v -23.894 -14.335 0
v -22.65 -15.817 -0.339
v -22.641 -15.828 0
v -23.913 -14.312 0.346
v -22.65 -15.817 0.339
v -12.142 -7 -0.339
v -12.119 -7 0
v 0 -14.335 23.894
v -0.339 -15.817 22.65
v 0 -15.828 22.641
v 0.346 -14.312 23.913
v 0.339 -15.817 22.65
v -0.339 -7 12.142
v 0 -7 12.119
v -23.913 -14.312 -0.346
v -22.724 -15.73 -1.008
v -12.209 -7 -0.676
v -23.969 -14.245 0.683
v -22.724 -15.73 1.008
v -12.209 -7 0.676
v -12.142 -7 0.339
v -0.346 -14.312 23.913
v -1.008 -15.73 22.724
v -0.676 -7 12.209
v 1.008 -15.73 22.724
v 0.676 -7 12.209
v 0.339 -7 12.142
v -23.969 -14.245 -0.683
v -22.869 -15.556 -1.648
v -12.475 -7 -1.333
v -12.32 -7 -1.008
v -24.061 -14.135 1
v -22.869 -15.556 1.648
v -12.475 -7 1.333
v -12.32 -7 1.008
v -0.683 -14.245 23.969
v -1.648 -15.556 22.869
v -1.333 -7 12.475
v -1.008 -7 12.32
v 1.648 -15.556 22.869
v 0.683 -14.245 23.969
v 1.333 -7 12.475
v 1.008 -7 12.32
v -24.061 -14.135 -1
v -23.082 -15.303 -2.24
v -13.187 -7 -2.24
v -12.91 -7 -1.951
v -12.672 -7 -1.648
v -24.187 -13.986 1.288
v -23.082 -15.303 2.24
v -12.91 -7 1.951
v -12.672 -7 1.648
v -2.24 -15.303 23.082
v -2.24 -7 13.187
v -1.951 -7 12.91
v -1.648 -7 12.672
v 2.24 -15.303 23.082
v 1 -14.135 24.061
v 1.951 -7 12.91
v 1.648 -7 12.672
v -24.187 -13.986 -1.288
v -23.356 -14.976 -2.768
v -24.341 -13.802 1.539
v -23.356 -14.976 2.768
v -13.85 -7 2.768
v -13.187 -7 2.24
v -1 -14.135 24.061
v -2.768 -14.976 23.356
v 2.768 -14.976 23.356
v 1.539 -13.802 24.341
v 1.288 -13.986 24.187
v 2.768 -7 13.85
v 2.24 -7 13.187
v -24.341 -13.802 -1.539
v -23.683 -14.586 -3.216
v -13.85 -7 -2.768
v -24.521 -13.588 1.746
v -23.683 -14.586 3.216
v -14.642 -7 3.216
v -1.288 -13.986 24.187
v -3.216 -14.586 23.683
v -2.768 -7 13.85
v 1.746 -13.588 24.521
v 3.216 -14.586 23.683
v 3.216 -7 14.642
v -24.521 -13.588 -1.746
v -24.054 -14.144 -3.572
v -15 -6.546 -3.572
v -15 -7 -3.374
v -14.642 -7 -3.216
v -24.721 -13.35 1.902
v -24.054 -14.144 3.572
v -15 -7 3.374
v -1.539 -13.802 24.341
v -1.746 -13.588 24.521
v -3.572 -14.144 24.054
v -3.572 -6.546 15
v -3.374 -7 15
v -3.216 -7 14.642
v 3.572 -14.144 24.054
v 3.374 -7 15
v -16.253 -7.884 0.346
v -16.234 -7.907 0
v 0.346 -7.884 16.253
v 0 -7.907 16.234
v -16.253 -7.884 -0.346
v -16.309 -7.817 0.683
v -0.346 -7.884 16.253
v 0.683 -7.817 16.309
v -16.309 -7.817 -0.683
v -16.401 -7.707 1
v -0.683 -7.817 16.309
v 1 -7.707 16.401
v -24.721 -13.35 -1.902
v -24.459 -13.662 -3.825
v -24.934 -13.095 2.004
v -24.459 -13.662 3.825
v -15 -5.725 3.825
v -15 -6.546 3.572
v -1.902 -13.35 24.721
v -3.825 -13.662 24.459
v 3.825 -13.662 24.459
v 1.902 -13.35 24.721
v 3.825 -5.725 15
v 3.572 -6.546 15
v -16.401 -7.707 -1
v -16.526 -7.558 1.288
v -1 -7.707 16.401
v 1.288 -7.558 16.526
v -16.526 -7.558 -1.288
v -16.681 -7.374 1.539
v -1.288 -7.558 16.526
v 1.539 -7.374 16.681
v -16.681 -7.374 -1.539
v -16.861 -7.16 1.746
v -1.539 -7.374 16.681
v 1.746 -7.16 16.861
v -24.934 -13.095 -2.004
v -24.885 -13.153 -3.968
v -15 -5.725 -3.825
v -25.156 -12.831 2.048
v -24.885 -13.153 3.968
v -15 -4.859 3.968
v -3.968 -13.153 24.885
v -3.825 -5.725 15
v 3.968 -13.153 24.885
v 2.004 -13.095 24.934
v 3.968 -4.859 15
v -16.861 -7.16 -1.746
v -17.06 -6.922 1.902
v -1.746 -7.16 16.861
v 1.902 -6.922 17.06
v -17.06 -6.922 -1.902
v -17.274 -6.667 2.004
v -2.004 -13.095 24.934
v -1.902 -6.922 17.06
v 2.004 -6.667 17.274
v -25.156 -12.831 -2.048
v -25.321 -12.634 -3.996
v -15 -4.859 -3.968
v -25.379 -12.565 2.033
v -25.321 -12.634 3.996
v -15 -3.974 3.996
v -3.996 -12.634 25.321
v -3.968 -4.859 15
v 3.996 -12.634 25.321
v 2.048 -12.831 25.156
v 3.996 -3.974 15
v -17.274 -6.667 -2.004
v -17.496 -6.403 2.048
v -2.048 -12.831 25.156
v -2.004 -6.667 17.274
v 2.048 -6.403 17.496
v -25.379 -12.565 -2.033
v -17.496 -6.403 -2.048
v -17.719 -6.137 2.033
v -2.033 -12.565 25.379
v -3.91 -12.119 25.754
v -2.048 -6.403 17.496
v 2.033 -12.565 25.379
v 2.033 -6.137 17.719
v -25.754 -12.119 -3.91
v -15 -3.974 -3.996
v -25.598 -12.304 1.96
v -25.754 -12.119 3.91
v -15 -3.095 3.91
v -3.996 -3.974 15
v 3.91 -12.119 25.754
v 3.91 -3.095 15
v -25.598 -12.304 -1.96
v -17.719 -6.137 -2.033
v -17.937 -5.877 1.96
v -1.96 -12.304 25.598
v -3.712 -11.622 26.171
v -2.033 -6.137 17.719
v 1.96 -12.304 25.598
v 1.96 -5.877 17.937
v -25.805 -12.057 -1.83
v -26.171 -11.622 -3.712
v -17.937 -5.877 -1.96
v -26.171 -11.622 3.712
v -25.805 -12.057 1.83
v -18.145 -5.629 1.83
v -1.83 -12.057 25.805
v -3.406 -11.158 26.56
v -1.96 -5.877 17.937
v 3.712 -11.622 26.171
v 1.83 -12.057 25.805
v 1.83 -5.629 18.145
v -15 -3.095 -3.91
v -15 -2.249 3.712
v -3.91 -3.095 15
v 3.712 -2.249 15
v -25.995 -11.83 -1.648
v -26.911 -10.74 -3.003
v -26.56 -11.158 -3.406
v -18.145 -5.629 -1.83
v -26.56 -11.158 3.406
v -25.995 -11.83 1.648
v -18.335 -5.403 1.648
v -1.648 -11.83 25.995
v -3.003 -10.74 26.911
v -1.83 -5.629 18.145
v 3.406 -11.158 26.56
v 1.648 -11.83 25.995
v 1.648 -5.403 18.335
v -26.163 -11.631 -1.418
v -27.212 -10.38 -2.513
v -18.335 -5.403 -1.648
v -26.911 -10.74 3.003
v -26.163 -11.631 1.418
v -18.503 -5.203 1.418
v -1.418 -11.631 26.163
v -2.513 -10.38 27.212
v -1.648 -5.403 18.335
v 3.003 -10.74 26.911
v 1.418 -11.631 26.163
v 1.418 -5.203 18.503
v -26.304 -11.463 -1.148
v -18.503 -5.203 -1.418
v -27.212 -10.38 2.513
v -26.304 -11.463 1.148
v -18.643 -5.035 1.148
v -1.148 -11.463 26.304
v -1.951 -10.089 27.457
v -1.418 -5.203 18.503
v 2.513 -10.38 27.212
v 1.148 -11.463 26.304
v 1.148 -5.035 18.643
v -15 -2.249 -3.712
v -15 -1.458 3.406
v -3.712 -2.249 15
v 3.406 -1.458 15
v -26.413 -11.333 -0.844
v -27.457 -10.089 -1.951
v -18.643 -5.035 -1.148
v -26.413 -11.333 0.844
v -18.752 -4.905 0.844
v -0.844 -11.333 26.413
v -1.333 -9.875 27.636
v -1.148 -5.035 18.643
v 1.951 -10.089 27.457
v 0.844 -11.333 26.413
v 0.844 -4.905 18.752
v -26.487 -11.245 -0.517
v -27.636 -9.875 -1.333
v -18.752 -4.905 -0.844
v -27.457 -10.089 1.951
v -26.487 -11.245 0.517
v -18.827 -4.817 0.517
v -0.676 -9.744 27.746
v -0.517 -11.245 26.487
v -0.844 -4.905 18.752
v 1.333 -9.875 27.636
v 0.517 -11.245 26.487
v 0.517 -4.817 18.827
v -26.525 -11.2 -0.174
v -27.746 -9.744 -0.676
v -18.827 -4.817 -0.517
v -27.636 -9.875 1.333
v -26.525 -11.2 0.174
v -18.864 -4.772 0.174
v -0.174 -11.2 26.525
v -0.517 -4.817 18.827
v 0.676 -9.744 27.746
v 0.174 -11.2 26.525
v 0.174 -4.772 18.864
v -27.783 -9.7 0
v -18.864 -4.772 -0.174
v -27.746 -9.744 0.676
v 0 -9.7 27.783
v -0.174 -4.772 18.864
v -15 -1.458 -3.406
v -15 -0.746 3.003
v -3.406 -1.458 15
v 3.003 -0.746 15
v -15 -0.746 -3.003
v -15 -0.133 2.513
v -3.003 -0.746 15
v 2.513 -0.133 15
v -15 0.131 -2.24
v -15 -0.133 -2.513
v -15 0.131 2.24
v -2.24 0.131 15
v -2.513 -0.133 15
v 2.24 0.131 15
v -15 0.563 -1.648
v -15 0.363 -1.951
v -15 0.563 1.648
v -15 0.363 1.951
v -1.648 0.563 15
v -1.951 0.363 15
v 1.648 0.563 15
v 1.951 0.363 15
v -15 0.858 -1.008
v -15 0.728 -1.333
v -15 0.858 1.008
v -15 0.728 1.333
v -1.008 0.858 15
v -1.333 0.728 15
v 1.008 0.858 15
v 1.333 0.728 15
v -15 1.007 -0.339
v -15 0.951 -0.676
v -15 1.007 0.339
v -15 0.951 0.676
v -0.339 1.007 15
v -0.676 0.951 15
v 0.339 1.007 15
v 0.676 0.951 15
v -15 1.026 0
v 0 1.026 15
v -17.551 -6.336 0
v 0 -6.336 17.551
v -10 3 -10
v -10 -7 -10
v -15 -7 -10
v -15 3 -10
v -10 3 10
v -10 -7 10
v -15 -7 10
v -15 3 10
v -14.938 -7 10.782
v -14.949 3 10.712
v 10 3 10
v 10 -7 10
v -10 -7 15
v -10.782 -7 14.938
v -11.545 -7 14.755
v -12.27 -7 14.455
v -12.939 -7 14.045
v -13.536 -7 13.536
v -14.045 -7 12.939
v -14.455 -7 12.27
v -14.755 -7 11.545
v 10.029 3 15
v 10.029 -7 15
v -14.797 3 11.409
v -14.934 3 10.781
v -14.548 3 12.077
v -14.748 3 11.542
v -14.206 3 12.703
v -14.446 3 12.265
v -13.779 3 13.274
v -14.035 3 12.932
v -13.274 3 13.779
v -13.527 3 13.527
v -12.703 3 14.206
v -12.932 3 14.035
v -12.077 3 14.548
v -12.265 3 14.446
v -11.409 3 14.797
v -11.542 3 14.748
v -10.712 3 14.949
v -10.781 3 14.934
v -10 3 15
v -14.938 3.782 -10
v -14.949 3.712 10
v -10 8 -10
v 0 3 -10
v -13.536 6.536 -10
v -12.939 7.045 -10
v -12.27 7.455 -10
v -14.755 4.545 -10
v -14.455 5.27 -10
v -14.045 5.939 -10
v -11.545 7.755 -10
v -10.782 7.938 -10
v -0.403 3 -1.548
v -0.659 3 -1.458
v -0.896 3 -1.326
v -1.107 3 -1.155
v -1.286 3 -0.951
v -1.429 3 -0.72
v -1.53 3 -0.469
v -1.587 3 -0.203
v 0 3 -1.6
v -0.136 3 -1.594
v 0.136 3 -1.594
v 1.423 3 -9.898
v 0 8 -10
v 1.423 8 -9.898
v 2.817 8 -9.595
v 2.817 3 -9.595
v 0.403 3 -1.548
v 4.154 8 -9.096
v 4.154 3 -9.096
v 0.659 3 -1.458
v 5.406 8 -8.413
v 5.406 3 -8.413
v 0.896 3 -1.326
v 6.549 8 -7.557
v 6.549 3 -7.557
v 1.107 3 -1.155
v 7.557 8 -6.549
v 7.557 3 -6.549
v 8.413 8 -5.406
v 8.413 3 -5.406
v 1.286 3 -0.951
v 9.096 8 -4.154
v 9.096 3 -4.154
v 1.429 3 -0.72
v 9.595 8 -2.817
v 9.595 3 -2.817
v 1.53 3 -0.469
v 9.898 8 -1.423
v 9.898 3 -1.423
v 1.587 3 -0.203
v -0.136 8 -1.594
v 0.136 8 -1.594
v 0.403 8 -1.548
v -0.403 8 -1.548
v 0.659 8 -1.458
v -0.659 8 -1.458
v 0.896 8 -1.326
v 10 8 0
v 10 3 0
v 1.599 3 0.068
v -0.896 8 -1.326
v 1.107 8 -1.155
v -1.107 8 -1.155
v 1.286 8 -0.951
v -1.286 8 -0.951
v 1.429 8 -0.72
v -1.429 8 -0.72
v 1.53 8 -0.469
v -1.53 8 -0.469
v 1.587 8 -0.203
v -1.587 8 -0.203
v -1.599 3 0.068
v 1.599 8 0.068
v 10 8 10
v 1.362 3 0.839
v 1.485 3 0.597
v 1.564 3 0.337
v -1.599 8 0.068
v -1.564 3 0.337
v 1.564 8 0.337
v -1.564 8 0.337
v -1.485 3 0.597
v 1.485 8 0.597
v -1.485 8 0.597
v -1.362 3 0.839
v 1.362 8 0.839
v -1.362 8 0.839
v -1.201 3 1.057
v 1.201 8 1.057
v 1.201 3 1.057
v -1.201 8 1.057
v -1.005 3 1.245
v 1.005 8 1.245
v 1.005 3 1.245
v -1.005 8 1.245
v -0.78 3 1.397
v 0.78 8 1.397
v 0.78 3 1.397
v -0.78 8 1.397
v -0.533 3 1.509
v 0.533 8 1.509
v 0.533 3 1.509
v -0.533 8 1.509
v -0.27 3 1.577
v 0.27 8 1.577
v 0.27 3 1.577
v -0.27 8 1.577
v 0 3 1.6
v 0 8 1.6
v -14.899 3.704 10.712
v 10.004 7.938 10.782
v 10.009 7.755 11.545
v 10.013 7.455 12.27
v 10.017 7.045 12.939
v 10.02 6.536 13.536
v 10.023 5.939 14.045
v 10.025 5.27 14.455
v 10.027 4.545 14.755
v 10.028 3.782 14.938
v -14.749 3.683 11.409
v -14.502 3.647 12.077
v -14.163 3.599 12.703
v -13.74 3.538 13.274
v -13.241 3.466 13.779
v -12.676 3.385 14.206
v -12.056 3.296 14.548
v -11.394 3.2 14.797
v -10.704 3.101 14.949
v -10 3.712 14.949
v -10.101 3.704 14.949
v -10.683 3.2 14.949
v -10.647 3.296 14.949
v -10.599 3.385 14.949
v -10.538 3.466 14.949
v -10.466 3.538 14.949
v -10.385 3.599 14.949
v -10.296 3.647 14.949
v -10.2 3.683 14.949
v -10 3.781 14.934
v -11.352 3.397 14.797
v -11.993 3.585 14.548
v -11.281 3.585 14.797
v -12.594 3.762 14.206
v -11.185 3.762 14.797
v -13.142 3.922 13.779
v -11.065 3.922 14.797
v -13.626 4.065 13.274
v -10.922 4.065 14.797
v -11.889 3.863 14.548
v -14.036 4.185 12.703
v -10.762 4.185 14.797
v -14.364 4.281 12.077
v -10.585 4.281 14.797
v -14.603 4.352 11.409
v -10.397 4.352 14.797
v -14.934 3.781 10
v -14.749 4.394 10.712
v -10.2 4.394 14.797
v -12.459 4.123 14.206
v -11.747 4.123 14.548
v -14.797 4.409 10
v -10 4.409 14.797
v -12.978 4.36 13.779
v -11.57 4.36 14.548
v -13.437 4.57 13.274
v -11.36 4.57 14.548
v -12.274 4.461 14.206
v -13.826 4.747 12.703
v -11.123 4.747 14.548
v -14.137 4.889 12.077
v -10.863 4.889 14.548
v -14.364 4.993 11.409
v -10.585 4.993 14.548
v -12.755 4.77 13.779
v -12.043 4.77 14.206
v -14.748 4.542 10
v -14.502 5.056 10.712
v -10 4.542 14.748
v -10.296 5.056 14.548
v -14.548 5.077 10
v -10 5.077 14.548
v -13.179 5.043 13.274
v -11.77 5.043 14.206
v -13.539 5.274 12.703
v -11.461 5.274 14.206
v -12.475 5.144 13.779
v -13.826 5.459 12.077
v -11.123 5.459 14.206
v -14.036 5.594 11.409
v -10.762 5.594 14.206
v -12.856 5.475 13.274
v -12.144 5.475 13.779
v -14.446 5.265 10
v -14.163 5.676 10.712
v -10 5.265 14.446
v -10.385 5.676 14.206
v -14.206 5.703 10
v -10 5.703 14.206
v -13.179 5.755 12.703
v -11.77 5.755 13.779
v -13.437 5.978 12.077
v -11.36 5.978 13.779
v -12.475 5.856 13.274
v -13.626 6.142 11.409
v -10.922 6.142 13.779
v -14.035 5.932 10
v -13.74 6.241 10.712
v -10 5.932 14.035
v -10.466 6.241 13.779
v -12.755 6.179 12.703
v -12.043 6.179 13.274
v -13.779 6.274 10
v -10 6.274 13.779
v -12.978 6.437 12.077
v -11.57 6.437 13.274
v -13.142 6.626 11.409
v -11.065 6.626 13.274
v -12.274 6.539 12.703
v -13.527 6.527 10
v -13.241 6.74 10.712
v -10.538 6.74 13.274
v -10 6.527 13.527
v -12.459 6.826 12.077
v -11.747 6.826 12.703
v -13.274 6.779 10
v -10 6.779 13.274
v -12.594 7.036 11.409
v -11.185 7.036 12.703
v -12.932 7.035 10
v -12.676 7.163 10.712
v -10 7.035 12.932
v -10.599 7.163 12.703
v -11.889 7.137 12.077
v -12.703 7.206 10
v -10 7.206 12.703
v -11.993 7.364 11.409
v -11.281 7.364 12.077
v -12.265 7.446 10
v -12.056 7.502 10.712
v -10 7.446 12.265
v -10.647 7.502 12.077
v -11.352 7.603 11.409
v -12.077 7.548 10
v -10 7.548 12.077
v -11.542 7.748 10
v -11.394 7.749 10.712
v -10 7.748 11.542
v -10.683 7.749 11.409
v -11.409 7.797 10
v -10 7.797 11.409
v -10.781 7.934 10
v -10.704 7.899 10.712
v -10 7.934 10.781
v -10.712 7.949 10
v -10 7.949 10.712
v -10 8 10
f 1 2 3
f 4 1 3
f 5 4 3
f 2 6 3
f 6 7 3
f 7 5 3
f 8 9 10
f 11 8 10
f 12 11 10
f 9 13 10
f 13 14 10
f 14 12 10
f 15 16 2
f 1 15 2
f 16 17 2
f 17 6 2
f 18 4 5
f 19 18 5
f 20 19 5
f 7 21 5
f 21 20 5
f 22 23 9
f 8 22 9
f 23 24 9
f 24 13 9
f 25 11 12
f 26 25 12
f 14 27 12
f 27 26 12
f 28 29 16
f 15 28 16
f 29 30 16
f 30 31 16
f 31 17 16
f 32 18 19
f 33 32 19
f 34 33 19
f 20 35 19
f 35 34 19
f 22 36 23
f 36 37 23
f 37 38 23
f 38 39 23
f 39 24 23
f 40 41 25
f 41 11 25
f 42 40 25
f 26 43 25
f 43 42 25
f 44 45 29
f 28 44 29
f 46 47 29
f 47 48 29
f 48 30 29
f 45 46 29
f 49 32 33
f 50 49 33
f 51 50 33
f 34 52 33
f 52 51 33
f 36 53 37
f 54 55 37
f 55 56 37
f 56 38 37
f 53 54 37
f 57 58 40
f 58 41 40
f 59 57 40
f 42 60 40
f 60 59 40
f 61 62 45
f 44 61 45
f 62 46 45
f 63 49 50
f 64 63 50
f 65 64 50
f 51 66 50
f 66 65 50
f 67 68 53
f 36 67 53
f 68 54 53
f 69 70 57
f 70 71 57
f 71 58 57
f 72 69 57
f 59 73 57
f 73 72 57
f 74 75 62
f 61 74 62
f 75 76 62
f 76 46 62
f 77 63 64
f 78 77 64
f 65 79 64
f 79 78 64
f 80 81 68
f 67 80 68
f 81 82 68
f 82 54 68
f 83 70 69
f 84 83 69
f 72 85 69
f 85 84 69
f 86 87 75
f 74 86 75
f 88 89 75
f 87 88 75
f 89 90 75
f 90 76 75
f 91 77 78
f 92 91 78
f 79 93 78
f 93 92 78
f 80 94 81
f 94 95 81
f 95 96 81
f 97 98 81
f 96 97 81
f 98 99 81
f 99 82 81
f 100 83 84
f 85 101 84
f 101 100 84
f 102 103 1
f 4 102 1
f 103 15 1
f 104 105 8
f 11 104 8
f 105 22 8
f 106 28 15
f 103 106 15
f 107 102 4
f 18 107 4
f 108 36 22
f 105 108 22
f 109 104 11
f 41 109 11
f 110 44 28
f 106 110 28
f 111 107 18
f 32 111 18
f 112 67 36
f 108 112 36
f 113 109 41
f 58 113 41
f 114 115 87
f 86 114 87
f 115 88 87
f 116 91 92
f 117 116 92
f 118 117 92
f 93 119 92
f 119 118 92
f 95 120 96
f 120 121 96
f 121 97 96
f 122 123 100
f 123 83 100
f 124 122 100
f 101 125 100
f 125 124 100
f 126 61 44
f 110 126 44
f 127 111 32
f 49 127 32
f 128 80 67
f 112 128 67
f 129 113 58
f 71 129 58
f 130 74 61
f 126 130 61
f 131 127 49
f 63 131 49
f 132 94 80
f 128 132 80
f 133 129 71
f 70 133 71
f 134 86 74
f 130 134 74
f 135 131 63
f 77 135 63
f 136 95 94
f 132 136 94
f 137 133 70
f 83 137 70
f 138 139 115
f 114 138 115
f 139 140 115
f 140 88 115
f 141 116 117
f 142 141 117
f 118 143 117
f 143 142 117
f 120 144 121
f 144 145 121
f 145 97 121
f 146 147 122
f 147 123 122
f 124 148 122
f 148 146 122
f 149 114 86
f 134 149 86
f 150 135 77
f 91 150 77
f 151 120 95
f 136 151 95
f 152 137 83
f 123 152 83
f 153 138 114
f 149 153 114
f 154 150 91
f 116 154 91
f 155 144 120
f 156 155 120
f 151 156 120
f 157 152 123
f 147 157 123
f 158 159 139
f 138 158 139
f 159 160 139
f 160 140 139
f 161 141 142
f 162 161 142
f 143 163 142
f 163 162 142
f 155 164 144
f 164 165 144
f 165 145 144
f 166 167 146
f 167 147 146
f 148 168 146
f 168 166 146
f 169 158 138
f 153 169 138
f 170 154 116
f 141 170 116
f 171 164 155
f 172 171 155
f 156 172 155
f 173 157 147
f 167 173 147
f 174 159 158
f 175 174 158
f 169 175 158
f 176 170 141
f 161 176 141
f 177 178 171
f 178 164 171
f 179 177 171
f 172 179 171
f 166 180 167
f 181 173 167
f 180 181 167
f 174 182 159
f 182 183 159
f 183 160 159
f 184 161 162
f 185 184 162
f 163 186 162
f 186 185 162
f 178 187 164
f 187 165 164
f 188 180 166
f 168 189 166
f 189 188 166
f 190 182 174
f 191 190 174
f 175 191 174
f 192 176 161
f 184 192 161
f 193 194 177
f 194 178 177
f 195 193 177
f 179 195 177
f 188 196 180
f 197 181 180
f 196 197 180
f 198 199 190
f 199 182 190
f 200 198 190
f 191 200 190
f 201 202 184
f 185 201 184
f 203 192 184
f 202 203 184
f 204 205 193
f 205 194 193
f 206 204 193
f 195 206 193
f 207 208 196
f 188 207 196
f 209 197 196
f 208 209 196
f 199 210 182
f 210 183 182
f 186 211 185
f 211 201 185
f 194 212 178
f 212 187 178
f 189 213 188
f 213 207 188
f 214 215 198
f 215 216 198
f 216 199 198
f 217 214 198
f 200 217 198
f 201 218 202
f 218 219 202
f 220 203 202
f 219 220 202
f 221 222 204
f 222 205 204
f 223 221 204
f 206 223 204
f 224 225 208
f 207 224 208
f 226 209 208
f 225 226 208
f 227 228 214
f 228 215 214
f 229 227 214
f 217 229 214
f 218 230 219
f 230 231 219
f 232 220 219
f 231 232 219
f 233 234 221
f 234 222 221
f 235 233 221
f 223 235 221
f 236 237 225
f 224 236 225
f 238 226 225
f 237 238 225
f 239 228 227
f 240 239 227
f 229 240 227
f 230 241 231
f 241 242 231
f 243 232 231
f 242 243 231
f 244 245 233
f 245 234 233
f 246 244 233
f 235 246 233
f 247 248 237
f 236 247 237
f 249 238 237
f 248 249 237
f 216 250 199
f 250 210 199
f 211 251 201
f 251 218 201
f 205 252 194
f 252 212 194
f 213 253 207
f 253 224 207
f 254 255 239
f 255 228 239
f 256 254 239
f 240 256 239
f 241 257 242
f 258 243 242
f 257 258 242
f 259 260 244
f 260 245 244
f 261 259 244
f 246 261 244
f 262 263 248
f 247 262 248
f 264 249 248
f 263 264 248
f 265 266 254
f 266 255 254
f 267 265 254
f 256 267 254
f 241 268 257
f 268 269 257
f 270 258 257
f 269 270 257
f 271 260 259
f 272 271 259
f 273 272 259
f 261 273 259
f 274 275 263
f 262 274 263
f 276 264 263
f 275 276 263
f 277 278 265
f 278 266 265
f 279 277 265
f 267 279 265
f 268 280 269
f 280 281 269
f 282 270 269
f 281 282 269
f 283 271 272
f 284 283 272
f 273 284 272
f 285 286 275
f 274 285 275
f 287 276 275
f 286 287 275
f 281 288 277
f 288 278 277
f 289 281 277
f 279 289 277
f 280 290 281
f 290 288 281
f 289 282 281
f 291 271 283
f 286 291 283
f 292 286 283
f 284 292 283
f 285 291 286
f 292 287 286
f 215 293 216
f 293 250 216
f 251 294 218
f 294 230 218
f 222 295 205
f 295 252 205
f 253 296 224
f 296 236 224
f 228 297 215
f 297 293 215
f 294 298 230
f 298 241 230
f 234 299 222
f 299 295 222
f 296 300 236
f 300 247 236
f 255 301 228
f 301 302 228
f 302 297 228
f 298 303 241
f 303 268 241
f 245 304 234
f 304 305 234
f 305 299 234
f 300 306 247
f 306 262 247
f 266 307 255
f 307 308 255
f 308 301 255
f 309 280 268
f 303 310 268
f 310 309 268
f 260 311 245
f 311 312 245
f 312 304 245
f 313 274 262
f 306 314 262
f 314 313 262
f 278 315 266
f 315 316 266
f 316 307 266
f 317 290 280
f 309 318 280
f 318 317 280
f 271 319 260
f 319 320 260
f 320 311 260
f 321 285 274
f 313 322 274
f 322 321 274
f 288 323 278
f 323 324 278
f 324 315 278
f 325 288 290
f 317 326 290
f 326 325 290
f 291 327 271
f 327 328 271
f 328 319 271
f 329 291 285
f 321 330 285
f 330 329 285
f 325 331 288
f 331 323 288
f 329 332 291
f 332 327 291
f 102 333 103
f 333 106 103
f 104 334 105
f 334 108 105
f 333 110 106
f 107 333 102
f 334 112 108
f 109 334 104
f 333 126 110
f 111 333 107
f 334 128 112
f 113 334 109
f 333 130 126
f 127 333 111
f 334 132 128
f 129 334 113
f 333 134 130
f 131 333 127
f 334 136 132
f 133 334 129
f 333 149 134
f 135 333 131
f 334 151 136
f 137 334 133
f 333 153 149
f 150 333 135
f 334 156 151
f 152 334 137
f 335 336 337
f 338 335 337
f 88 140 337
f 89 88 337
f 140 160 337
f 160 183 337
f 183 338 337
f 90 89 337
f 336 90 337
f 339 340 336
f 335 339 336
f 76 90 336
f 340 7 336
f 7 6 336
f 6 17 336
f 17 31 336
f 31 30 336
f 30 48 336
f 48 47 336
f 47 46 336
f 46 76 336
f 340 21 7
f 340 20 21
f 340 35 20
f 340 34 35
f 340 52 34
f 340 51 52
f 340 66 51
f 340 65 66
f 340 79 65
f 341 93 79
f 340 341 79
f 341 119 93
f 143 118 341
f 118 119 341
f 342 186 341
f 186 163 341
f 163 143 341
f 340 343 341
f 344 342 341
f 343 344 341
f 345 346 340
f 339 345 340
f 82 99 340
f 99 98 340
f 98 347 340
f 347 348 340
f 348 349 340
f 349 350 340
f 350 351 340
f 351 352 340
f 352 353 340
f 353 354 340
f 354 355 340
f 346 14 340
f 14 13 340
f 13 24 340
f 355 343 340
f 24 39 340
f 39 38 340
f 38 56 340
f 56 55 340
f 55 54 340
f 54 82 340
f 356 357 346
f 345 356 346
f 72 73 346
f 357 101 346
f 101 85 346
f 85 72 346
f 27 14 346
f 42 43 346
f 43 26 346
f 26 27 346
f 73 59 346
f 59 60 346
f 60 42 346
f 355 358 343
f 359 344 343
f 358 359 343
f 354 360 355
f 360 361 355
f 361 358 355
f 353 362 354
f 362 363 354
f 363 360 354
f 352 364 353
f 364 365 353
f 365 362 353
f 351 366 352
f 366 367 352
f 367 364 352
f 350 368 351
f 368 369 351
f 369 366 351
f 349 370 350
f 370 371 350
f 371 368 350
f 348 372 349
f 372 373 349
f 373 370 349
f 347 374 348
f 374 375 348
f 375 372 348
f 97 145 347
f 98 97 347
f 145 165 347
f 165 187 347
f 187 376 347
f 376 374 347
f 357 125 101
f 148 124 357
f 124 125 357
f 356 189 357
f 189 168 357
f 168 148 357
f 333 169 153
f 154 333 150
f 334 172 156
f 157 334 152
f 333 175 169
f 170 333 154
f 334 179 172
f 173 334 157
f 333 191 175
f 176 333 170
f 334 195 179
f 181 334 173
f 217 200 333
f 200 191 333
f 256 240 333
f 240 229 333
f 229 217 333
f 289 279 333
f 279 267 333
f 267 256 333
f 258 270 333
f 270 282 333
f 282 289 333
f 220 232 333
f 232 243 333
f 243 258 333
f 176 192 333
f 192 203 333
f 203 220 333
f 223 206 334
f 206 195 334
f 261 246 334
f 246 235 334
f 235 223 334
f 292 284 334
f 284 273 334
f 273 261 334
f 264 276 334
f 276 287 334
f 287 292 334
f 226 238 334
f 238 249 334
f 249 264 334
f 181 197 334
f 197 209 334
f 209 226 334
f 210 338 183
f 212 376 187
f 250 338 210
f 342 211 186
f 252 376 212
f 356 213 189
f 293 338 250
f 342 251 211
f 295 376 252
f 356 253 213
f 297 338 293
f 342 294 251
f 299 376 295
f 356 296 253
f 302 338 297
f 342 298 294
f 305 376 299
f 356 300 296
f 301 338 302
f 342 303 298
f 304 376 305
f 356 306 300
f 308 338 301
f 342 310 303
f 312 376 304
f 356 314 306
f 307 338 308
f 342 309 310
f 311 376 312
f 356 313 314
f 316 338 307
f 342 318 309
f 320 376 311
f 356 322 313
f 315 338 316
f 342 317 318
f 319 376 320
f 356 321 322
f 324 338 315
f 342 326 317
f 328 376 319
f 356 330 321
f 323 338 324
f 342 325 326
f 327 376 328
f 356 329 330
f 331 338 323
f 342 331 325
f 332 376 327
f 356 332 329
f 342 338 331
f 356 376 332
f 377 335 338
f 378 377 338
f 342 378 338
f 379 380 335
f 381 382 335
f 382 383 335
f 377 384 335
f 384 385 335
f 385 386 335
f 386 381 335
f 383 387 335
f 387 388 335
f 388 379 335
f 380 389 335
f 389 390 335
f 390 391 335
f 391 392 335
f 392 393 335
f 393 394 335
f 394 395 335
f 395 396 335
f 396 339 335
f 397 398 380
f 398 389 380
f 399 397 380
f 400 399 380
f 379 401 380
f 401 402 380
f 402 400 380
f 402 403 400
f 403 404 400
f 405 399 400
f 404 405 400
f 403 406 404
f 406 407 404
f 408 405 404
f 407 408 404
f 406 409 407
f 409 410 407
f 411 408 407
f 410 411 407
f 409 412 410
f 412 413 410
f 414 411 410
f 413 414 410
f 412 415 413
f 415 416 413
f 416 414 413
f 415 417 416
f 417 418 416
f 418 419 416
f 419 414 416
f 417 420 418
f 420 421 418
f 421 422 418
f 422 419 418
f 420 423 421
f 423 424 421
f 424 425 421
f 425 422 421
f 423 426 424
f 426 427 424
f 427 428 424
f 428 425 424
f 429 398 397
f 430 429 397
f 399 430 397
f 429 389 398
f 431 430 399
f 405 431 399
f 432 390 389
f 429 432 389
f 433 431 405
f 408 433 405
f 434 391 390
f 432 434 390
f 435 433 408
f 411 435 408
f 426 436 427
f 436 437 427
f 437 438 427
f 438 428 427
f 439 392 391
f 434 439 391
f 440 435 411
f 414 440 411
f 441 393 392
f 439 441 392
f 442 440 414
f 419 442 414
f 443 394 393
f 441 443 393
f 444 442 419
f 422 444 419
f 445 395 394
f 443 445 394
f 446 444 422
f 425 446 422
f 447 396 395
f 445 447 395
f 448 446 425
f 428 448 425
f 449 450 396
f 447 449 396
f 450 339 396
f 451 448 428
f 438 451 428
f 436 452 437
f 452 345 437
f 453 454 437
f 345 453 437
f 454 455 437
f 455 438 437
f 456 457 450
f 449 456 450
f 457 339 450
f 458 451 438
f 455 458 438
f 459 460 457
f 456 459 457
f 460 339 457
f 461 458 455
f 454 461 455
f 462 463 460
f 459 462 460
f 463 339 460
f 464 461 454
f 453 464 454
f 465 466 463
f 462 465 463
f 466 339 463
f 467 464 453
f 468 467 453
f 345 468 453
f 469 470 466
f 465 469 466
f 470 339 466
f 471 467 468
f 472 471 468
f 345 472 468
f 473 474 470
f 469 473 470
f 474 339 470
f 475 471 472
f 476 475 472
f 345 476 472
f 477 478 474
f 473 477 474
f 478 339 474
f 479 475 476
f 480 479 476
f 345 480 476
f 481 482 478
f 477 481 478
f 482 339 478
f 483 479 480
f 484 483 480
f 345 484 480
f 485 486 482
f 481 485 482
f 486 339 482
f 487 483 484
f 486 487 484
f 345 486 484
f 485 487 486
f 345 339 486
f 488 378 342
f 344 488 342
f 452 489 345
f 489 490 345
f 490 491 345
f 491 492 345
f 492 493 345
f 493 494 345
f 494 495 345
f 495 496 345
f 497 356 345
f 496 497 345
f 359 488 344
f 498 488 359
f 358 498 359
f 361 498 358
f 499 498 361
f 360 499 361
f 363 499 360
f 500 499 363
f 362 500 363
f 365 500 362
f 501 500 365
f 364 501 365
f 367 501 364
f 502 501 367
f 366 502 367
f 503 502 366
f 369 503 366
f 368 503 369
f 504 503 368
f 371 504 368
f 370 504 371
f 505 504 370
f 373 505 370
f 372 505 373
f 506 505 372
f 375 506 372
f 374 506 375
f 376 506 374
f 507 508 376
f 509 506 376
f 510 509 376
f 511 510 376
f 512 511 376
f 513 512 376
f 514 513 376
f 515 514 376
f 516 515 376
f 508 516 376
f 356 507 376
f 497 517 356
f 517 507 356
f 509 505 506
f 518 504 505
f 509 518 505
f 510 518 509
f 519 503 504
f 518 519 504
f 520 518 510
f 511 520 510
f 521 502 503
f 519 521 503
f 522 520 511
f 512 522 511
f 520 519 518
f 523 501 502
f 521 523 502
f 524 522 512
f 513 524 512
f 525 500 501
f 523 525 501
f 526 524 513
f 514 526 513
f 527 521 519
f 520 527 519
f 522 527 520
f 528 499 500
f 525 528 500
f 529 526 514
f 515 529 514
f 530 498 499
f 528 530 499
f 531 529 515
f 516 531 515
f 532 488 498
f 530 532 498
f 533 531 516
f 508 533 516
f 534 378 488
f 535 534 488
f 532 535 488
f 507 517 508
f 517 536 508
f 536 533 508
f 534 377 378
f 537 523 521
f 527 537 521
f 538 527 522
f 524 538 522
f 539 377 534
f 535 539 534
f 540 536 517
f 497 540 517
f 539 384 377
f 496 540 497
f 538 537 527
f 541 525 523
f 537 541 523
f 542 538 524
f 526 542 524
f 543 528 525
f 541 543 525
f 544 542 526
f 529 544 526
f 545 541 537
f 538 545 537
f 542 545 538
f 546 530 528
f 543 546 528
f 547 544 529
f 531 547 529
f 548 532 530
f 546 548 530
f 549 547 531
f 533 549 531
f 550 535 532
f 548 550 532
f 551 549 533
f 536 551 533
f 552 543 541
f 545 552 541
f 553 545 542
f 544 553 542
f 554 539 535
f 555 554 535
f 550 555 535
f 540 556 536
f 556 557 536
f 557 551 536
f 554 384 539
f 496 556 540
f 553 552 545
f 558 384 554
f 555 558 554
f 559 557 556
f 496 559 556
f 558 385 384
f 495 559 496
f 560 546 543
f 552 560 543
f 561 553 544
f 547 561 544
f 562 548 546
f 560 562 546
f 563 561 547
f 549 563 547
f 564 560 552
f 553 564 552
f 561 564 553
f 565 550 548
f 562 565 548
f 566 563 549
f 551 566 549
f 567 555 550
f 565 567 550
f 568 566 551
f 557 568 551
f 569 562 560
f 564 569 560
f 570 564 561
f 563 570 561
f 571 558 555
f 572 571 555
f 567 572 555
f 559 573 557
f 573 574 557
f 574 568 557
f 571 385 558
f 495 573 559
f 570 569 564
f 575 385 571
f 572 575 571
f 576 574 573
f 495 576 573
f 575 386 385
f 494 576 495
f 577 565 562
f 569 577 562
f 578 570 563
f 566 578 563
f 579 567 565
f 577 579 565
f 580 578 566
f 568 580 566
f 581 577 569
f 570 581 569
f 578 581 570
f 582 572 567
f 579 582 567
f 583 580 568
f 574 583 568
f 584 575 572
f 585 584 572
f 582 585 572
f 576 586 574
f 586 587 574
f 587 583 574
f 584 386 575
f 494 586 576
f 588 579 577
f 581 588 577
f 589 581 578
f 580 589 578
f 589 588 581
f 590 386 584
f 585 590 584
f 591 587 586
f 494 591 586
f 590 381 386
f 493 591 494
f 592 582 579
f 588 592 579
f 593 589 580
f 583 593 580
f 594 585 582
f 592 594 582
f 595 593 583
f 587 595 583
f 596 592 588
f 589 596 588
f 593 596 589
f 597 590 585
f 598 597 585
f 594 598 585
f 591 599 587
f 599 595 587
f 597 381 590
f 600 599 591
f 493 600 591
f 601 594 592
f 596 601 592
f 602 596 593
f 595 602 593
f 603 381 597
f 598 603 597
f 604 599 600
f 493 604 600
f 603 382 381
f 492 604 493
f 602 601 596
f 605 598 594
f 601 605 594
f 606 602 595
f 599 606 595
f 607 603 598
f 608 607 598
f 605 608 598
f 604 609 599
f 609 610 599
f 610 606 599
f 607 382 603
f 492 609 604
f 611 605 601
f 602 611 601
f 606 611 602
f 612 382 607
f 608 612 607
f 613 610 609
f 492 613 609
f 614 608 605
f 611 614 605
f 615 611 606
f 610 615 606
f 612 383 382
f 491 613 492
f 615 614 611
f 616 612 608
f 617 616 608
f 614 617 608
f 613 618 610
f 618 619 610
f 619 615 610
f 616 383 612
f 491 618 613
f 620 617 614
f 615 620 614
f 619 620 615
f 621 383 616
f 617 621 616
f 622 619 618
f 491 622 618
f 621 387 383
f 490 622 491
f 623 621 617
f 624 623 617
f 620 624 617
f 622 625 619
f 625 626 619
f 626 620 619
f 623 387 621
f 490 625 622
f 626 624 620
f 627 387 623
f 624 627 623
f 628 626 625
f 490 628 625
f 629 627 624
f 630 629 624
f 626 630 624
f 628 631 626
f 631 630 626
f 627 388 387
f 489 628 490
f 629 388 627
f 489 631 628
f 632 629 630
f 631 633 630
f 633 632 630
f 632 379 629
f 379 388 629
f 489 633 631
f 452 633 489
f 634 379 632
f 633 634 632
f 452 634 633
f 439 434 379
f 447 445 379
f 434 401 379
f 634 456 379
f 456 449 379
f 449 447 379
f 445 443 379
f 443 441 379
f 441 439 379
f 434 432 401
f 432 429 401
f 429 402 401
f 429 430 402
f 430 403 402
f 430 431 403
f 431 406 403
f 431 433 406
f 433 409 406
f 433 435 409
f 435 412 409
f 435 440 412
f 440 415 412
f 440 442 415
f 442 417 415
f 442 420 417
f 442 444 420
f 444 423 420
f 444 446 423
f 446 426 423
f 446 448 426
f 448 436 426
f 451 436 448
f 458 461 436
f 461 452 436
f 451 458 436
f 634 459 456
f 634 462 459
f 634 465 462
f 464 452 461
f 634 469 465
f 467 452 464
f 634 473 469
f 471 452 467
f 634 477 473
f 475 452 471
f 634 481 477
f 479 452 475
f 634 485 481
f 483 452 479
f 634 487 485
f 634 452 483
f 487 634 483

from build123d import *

# Parameters (mm, degrees)
SKETCH_1_W          = 20
SKETCH_1_H          = 20
EXTRUDE_1_DEPTH     = 8
SKETCH_2_R          = 4
EXTRUDE_2_DEPTH     = 25
SKETCH_3_R          = 4
EXTRUDE_3_DEPTH     = 25
SKETCH_4_R          = 1.6
CUT_EXTRUDE_1_DEPTH = 46.952030516
EXTRUDE_4_DEPTH     = 15
CUT_EXTRUDE_START   = -10
CUT_EXTRUDE_5_DEPTH = 10
SKETCH_11_R         = 2.05
CUT_EXTRUDE_6_DEPTH = 10
SKETCH_12_R         = 2.05
CUT_EXTRUDE_7_DEPTH = 10
FILLET_3_R          = 5


with BuildPart() as part:
    # 草圖1 → 填料-伸長1 (new body)
    with BuildSketch(Plane(origin=(0, 0, 0), x_dir=(1, 0, 0), z_dir=(0, 1, 0))):
        Rectangle(SKETCH_1_W, SKETCH_1_H)
    extrude(amount=EXTRUDE_1_DEPTH)

    # 草圖2 → 填料-伸長2 (add)
    with BuildSketch(Plane(origin=(0, -1.618631476, 1.929009876), x_dir=(1, 0, 0), z_dir=(0, -0.6427876096865406, 0.7660444431189771))):
        with Locations((0, 6.427876097)):
            Circle(SKETCH_2_R)
    extrude(amount=EXTRUDE_2_DEPTH)

    # 草圖3 → 填料-伸長3 (add)
    with BuildSketch(Plane(origin=(-1.929009876, -1.618631476, 0), x_dir=(0, 0, 1), z_dir=(-0.7660444431189771, -0.6427876096865406, 0))):
        with Locations((0, 6.427876097)):
            Circle(SKETCH_3_R)
    extrude(amount=EXTRUDE_3_DEPTH)

    # 草圖4 → 除料-伸長1 (cut, through all)
    with BuildSketch(Plane(origin=(0, 8, 0), x_dir=(1, 0, 0), z_dir=(0, 1, 0))):
        with Locations(Location((0, 0, 0), (0, 0, 270))):
            Circle(SKETCH_4_R)
        with BuildLine():
            Line((0, 10), (10, 10))
            Line((10, 10), (10, 0))
            ThreePointArc((10, 0), (7.071067812, 7.071067812), (0, 10))
        make_face()
    extrude(amount=-CUT_EXTRUDE_1_DEPTH, mode=Mode.SUBTRACT)

    # 草圖9 → 填料-伸長4 (add)
    with BuildSketch(Plane(origin=(0, 8, 0), x_dir=(1, 0, 0), z_dir=(0, 1, 0))):
        Polygon((-10, 10), (-15, 10), (-15, -15), (10.028553892, -15), (10, -10), (-10, -10), align=None)
    extrude(amount=-EXTRUDE_4_DEPTH)

    # 草圖10 → 除料-伸長5 (cut)
    with BuildSketch(Plane.XZ.offset(7).offset(CUT_EXTRUDE_START)):
        with BuildLine():
            Line((10, 0), (10, 10))
            Line((10, 10), (-10, 10))
            Line((-10, 10), (-10, -10))
            Line((-10, -10), (0, -10))
            ThreePointArc((0, -10), (7.071067812, -7.071067812), (10, 0))
        make_face()
    extrude(amount=CUT_EXTRUDE_5_DEPTH, mode=Mode.SUBTRACT)

    # 草圖11 → 除料-伸長6 (cut)
    with BuildSketch(Plane(origin=(-21.080120954, -17.688321718, 0), x_dir=(0, 0, 1), z_dir=(-0.7660444431189772, -0.6427876096865405, 0))):
        with Locations(Location((0, 6.427876097, 0), (0, 0, 270))):
            Circle(SKETCH_11_R)
    extrude(amount=-CUT_EXTRUDE_6_DEPTH, mode=Mode.SUBTRACT)

    # 草圖12 → 除料-伸長7 (cut)
    with BuildSketch(Plane(origin=(0, -17.688321718, 21.080120954), x_dir=(1, 0, 0), z_dir=(0, -0.6427876096865405, 0.7660444431189771))):
        with Locations(Location((0, 6.427876097, 0), (0, 0, 270))):
            Circle(SKETCH_12_R)
    extrude(amount=-CUT_EXTRUDE_7_DEPTH, mode=Mode.SUBTRACT)

    # 圓角3
    fillet_3_edges = [part.edges().sort_by_distance(p)[0] for p in [
        (-2.485723054, 8, 15),
        (-15, 8, 2.5),
        (-15, 0.5, 15),
    ]]
    fillet(fillet_3_edges, radius=FILLET_3_R)


solid = part.part
